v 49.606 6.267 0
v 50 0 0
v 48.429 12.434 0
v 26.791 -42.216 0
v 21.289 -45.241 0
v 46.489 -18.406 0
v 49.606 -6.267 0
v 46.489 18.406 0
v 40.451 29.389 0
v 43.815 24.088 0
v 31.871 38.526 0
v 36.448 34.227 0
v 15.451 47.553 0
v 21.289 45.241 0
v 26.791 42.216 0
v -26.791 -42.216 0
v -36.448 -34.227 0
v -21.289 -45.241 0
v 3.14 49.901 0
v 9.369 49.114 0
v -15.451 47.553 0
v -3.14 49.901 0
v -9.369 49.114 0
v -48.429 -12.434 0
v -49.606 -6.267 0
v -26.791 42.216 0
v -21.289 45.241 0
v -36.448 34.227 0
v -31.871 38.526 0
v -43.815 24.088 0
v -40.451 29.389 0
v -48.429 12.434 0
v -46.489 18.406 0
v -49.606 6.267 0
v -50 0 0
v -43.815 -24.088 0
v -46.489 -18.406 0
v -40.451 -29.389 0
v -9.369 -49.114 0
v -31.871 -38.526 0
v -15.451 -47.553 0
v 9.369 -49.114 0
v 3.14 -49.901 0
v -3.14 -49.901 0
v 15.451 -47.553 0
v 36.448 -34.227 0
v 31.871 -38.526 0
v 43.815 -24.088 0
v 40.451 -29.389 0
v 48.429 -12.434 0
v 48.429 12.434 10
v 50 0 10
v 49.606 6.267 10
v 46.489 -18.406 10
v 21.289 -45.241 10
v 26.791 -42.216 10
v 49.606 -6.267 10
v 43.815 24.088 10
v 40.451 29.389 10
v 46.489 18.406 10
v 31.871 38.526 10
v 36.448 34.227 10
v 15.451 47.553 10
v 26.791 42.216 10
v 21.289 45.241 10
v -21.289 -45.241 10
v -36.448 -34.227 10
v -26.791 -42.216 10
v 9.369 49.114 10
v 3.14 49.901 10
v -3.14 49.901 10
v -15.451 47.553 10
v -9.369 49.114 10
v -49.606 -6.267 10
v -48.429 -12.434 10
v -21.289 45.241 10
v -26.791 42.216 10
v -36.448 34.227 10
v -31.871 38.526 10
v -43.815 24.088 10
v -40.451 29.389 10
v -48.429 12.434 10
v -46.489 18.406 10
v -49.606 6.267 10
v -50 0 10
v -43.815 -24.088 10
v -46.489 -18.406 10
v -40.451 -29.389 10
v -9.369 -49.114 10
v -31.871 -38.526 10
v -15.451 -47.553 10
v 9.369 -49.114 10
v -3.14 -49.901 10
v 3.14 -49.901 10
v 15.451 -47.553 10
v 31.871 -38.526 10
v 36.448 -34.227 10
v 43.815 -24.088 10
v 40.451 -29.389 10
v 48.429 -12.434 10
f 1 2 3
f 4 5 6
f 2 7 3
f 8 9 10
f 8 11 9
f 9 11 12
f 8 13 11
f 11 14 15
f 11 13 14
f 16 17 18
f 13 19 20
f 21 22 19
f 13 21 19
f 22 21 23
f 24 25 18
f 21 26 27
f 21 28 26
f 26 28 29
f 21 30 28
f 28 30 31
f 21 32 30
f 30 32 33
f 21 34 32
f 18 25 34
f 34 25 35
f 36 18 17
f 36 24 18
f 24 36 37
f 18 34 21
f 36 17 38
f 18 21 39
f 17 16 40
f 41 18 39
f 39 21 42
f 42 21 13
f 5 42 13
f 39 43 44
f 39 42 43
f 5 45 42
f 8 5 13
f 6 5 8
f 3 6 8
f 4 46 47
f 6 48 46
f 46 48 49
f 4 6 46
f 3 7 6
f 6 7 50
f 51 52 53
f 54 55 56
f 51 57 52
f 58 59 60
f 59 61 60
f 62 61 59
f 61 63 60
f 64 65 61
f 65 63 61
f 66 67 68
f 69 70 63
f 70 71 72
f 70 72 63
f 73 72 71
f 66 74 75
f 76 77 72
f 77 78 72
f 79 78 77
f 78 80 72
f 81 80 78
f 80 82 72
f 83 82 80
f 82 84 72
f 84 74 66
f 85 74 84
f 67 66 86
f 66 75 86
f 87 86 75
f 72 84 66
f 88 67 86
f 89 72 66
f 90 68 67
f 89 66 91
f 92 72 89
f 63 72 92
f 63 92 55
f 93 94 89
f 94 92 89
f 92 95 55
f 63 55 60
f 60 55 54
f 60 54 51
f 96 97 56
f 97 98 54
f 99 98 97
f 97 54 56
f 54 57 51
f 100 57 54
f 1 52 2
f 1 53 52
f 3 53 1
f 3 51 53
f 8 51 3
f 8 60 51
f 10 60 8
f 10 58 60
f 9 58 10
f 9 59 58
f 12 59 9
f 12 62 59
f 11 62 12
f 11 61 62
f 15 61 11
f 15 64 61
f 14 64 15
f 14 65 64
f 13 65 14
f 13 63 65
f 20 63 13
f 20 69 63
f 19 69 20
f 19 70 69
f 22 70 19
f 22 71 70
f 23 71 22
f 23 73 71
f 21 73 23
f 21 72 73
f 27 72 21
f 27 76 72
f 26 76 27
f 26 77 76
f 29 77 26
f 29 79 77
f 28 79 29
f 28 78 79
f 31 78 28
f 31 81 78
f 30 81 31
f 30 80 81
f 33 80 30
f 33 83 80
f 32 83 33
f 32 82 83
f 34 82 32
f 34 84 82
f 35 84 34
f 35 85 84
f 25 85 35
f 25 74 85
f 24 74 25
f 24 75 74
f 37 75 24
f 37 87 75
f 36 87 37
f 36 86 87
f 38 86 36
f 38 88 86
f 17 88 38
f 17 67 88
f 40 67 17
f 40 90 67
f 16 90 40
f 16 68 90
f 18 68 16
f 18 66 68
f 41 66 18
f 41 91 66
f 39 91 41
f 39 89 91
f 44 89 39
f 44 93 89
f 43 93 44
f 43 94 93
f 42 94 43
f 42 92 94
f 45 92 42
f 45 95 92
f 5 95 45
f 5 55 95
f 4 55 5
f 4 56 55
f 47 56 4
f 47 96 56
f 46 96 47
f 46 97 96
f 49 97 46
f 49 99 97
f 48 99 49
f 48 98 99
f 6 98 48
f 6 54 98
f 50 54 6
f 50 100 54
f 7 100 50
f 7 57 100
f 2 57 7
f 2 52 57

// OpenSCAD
module spiral(radius, height, segments) {
  linear_extrude(height = height, convexity = 10, $fn = segments)
  circle(r = radius);
}

spiral(radius = 50, height = 10, segments = 50);
